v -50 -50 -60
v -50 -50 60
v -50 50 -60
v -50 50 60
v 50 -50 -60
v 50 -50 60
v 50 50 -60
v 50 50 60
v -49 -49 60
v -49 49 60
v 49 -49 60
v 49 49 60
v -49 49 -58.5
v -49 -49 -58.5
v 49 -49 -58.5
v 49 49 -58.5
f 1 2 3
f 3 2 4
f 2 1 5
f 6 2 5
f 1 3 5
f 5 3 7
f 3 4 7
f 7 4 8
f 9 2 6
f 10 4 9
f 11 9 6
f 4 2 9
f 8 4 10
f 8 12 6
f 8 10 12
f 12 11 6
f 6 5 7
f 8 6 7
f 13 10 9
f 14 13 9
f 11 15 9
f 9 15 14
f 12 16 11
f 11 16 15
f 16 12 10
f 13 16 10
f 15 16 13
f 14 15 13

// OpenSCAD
module PencilBox(l = 100, w = 100, h = 120, wall = 1)
{
	difference()
	{
		cube([l, w, h], center = true);

		translate([0, 0, wall])
		cube([l-wall*2, w-wall*2, h-wall], center = true);
	}
}

PencilBox();
